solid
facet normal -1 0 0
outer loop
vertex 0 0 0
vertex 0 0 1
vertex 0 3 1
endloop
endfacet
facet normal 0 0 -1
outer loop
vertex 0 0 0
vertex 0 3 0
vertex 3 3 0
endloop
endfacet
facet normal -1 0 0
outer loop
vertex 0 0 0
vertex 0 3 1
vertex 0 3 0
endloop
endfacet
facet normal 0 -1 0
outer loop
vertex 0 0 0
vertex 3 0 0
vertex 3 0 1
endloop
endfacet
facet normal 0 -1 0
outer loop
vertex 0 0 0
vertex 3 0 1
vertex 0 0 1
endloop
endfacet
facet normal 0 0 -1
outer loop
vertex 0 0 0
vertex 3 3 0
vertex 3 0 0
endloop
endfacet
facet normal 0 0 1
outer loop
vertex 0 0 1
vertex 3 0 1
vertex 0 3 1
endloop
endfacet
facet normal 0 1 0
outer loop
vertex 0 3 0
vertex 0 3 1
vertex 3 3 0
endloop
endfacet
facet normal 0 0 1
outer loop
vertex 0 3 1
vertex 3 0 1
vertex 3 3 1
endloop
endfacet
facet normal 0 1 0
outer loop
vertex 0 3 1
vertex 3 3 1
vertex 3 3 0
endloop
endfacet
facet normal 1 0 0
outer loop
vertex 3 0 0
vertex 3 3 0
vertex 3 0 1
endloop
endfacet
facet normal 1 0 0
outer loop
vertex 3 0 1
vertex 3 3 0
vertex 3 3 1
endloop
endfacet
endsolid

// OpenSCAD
/* Warning, this is a very basic generator with a lot of approximation 
input data : [WQFN, 3QX, 3x3mm, 16, , B, C04-14016B]
generated by com.zoubworld.electronics.cad.model3d.Basic
Date : Sun Feb 15 10:50:49 CET 2026
*/

//body
color("black")
translate([0,0,0])
cube([3.0,3.0,1.0], center=false);
